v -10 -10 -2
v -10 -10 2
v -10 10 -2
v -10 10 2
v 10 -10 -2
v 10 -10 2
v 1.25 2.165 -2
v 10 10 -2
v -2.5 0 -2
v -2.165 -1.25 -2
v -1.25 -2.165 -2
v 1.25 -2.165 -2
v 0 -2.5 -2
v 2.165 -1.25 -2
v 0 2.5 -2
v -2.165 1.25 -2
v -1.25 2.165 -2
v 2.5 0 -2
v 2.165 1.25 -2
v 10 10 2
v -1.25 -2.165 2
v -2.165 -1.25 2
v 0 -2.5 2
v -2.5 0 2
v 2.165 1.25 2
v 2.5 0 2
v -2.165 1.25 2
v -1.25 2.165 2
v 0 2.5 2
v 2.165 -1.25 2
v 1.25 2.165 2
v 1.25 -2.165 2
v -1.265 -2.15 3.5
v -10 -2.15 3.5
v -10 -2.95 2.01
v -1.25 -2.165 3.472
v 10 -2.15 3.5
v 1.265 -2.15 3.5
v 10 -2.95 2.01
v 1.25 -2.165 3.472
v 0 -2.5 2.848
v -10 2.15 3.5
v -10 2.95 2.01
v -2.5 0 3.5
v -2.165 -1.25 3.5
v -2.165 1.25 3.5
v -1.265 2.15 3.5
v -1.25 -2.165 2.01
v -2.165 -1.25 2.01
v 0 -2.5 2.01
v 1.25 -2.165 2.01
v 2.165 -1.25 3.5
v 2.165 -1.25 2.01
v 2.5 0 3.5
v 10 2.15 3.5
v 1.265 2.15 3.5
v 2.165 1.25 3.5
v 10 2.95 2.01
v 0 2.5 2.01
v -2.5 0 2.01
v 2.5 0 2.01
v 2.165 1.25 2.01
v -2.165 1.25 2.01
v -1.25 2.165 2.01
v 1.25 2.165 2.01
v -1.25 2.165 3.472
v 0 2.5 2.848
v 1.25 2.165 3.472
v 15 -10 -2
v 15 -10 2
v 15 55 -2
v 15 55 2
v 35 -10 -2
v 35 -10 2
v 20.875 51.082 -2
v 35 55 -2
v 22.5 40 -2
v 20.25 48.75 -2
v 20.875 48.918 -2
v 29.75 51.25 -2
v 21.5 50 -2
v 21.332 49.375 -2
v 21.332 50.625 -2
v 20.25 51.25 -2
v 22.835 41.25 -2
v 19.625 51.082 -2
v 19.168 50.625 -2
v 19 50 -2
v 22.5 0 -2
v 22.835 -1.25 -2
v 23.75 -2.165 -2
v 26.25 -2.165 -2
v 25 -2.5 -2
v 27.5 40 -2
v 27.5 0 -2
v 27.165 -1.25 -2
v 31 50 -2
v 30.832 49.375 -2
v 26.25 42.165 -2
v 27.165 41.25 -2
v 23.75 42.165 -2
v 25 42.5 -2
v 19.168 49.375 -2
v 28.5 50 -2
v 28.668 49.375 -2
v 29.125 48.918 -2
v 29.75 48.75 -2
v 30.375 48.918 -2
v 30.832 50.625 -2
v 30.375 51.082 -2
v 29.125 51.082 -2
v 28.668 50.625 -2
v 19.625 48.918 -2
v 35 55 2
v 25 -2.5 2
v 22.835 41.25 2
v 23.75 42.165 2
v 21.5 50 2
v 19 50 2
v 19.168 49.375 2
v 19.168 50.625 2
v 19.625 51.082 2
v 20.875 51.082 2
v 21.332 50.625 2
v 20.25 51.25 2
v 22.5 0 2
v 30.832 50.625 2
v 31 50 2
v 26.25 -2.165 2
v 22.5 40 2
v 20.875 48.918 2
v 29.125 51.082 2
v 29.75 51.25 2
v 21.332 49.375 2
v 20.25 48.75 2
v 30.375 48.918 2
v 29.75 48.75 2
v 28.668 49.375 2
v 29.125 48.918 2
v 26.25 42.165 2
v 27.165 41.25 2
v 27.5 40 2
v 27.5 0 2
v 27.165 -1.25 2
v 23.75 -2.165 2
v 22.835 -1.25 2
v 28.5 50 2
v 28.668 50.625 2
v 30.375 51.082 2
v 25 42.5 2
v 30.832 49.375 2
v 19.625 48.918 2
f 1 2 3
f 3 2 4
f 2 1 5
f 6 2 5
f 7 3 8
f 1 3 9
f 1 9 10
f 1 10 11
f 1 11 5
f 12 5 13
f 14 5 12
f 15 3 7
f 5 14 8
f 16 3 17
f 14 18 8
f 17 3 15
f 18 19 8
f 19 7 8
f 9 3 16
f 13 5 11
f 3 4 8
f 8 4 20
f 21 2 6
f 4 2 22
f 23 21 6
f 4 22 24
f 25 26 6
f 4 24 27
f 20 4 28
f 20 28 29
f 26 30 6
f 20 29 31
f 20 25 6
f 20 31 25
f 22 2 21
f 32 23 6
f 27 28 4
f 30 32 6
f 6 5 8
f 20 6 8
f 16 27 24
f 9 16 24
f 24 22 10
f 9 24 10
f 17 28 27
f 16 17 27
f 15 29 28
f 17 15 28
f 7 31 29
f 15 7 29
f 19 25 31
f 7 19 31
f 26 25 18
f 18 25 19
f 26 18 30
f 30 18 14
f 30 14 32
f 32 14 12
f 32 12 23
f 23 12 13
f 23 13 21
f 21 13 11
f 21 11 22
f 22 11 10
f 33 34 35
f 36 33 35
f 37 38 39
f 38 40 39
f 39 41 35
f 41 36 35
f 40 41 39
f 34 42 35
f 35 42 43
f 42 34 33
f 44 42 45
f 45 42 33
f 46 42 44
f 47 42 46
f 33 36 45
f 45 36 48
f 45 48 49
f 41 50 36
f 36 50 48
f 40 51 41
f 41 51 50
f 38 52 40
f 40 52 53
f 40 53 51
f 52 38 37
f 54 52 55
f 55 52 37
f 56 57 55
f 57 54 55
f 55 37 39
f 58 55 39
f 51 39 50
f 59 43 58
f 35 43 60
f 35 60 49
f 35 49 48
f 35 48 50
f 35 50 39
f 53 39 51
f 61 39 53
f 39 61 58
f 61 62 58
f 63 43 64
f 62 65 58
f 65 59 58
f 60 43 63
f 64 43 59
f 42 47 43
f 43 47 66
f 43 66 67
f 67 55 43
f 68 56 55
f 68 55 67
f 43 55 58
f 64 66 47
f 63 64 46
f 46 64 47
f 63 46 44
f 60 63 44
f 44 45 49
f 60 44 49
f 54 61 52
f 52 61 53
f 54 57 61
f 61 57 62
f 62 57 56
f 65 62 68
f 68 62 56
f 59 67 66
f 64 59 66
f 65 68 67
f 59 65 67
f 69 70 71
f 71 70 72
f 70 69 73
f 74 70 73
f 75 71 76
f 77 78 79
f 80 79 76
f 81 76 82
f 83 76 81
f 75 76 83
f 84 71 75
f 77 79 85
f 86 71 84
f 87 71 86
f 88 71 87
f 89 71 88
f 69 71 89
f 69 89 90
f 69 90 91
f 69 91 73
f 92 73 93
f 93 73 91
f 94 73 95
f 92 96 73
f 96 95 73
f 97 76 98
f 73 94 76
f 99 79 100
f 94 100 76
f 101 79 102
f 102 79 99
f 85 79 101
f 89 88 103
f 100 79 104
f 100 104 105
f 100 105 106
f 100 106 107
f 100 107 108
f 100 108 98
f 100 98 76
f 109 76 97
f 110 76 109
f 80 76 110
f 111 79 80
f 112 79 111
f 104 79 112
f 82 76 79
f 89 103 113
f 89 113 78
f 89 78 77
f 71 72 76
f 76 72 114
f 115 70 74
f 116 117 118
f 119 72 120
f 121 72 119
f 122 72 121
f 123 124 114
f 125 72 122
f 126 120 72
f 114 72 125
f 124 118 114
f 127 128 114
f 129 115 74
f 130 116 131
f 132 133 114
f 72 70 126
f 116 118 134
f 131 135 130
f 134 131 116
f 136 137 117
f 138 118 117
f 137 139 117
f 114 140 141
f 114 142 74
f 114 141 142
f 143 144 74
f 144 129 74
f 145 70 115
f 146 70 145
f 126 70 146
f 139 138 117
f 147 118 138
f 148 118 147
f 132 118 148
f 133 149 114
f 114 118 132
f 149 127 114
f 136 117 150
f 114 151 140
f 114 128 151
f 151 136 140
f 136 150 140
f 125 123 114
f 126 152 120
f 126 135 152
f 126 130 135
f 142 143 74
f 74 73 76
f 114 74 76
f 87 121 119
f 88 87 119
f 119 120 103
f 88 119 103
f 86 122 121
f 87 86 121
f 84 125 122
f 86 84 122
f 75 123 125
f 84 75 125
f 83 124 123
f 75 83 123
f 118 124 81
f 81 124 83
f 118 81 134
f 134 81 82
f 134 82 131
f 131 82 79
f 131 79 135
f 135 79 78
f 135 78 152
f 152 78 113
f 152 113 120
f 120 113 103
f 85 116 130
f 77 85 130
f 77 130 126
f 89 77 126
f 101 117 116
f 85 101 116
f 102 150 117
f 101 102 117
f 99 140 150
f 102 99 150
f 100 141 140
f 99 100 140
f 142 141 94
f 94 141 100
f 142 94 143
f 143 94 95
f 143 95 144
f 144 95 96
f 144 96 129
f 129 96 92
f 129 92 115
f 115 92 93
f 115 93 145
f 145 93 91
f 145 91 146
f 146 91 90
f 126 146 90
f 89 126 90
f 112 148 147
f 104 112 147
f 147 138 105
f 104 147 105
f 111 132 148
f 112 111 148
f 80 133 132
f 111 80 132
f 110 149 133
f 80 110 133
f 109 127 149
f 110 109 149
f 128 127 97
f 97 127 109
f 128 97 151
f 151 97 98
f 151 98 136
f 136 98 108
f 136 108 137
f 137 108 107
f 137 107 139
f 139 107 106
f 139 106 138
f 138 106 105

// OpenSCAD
/*
 * Simple endstop switch holder for Trinity Labs PTFE Linear slide Y axis
 *
 * Copyright (c) 2012 Mark Hindess
 *
 * Creative Commons Attribution-NonCommercial-ShareAlike 3.0 Unported License:
 *
 *   http://creativecommons.org/licenses/by-nc-sa/3.0/
 */

thickness = 4;
extrusion_width = 20;
fixing_width = extrusion_width;
extrusion_ridge_width = 5.9;
extrusion_ridge_depth = 1.5;
extrusion_screw_diameter = 5;
$fn = 12;
holder_width = fixing_width;

// holder length as measured from edge of extrusion so total length of
// holder part is holder_length plus extrusion width
holder_length = 45;
holder_thickness = thickness;
switch_hole_diameter = 2.5;
holder_slot_length = holder_length;

module extrusion_fixing() {
    difference() {
        union() {
            // base of fixing
            cube([fixing_width, extrusion_width, thickness], center = true);

            // ridge that descends into extrusion
            translate([-fixing_width/2,0,thickness/2])
                rotate([0,90,0])
                linear_extrude(height = fixing_width)
                polygon([[-0.01,-extrusion_ridge_width/2],
                     [-extrusion_ridge_depth,-extrusion_ridge_width/2+.8],
                     [-extrusion_ridge_depth,extrusion_ridge_width/2-.8],
                     [-0.01,extrusion_ridge_width/2]]);
        }

        // screw hole
        cylinder(r = extrusion_screw_diameter/2,
                 h = thickness*3, center = true);
    }
}

module endstop_holder() {
    difference() {
        translate([-extrusion_width/2,-extrusion_width/2, -holder_thickness/2])
          cube([holder_width, holder_length+extrusion_width, holder_thickness]);

        // switch screw holes
        for (x=[-9.5/2, 9.5/2]) {
            translate([x,holder_length+extrusion_width/2-5,0])
            cylinder(r=switch_hole_diameter/2, h=holder_thickness*3,
                     center=true);
        }

        // slot to allow movement of switch holder
        translate([0, holder_slot_length/2-extrusion_screw_diameter/2, 0]) {
            cube([extrusion_screw_diameter,
                  holder_slot_length - extrusion_screw_diameter,
                  holder_thickness*3], center = true);
           // holes to form rounded ends of the slot
           for (y=[-holder_slot_length/2+extrusion_screw_diameter/2,
                   +holder_slot_length/2-extrusion_screw_diameter/2])
               translate([0,y,0])
               cylinder(r = extrusion_screw_diameter/2,
                        h = holder_thickness*3, center = true);
        }
    }
}

extrusion_fixing();
translate([25,0,0]) endstop_holder();
